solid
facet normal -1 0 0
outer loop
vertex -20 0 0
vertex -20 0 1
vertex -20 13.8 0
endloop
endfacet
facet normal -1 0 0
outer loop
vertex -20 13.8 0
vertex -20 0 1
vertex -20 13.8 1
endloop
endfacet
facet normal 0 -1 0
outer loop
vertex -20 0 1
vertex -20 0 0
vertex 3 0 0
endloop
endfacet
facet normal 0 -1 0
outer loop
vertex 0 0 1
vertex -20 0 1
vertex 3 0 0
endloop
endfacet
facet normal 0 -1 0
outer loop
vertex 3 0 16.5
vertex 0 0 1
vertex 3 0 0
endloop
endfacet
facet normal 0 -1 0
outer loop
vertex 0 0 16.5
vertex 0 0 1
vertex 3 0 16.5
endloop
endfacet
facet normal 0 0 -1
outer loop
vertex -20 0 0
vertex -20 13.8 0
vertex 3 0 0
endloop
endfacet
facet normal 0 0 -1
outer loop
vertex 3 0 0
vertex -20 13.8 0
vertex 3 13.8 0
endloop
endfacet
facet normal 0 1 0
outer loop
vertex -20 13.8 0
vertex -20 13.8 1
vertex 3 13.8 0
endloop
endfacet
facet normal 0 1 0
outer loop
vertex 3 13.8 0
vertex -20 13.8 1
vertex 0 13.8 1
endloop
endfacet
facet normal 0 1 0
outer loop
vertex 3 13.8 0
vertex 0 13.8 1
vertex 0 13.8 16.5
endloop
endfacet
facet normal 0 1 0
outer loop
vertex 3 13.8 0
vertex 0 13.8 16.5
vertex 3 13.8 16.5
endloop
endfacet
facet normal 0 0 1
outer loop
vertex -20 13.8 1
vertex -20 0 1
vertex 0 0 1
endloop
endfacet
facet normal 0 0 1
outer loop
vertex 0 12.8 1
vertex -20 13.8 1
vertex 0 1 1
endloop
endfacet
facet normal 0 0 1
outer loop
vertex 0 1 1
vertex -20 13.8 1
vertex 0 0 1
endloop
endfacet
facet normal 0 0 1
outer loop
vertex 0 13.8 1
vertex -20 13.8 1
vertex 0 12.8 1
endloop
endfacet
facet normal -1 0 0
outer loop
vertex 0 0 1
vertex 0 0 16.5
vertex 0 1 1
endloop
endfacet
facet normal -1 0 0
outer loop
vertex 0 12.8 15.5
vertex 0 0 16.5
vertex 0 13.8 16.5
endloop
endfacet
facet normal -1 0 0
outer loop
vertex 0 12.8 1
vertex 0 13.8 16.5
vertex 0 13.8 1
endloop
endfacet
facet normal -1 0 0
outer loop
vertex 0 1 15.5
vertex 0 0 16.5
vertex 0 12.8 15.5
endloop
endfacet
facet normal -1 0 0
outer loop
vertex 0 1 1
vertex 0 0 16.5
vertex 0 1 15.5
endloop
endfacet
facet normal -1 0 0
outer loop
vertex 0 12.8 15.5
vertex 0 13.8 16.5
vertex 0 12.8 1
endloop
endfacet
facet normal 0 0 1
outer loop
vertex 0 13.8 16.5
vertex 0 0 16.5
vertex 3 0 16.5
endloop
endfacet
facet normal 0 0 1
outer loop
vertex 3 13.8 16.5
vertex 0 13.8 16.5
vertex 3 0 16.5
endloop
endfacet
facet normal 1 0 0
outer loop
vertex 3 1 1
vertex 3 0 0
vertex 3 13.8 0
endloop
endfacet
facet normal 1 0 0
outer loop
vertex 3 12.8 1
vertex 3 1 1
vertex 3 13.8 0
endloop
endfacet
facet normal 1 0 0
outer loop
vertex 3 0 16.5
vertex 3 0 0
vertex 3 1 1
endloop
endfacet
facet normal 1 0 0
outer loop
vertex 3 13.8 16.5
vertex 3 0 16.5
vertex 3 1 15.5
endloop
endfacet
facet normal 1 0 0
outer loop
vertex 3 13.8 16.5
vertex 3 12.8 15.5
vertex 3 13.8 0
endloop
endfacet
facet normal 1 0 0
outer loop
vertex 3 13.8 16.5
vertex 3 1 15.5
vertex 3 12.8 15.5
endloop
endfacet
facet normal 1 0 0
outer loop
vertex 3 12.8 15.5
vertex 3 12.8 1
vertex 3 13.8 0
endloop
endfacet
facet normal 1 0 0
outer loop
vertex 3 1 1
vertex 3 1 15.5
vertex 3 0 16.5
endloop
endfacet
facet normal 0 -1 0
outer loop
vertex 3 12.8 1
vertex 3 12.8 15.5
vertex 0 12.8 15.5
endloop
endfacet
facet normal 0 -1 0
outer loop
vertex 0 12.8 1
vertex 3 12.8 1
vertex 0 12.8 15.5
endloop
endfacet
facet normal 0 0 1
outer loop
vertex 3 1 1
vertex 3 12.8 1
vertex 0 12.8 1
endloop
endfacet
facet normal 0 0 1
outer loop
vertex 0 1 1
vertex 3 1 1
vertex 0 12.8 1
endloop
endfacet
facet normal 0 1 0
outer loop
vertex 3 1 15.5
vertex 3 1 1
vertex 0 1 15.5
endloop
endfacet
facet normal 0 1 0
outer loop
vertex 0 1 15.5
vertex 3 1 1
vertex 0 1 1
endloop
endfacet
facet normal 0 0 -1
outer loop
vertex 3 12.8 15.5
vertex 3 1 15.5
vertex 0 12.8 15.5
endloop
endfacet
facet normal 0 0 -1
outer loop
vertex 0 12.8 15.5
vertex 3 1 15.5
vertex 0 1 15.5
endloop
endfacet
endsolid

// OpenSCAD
thickness = 1;
prismHeight = 11.8;
prismWidth = 3;
prismDepth = 14.5;
mirrorSide = 25.7;
mirrorSideEdge = 4;
mirrorDepth = 2.5;
glassLength = 20;
difference() {
translate([0, 0, 0]) cube([prismWidth, prismHeight + thickness * 2, prismDepth + thickness * 2]);
translate([0, thickness, thickness]) cube([prismWidth, prismHeight, prismDepth]);
translate([0, thickness, thickness]) circle(5);
}
translate([-glassLength, 0, 0]) cube([glassLength, prismHeight+ thickness * 2, thickness ]);
